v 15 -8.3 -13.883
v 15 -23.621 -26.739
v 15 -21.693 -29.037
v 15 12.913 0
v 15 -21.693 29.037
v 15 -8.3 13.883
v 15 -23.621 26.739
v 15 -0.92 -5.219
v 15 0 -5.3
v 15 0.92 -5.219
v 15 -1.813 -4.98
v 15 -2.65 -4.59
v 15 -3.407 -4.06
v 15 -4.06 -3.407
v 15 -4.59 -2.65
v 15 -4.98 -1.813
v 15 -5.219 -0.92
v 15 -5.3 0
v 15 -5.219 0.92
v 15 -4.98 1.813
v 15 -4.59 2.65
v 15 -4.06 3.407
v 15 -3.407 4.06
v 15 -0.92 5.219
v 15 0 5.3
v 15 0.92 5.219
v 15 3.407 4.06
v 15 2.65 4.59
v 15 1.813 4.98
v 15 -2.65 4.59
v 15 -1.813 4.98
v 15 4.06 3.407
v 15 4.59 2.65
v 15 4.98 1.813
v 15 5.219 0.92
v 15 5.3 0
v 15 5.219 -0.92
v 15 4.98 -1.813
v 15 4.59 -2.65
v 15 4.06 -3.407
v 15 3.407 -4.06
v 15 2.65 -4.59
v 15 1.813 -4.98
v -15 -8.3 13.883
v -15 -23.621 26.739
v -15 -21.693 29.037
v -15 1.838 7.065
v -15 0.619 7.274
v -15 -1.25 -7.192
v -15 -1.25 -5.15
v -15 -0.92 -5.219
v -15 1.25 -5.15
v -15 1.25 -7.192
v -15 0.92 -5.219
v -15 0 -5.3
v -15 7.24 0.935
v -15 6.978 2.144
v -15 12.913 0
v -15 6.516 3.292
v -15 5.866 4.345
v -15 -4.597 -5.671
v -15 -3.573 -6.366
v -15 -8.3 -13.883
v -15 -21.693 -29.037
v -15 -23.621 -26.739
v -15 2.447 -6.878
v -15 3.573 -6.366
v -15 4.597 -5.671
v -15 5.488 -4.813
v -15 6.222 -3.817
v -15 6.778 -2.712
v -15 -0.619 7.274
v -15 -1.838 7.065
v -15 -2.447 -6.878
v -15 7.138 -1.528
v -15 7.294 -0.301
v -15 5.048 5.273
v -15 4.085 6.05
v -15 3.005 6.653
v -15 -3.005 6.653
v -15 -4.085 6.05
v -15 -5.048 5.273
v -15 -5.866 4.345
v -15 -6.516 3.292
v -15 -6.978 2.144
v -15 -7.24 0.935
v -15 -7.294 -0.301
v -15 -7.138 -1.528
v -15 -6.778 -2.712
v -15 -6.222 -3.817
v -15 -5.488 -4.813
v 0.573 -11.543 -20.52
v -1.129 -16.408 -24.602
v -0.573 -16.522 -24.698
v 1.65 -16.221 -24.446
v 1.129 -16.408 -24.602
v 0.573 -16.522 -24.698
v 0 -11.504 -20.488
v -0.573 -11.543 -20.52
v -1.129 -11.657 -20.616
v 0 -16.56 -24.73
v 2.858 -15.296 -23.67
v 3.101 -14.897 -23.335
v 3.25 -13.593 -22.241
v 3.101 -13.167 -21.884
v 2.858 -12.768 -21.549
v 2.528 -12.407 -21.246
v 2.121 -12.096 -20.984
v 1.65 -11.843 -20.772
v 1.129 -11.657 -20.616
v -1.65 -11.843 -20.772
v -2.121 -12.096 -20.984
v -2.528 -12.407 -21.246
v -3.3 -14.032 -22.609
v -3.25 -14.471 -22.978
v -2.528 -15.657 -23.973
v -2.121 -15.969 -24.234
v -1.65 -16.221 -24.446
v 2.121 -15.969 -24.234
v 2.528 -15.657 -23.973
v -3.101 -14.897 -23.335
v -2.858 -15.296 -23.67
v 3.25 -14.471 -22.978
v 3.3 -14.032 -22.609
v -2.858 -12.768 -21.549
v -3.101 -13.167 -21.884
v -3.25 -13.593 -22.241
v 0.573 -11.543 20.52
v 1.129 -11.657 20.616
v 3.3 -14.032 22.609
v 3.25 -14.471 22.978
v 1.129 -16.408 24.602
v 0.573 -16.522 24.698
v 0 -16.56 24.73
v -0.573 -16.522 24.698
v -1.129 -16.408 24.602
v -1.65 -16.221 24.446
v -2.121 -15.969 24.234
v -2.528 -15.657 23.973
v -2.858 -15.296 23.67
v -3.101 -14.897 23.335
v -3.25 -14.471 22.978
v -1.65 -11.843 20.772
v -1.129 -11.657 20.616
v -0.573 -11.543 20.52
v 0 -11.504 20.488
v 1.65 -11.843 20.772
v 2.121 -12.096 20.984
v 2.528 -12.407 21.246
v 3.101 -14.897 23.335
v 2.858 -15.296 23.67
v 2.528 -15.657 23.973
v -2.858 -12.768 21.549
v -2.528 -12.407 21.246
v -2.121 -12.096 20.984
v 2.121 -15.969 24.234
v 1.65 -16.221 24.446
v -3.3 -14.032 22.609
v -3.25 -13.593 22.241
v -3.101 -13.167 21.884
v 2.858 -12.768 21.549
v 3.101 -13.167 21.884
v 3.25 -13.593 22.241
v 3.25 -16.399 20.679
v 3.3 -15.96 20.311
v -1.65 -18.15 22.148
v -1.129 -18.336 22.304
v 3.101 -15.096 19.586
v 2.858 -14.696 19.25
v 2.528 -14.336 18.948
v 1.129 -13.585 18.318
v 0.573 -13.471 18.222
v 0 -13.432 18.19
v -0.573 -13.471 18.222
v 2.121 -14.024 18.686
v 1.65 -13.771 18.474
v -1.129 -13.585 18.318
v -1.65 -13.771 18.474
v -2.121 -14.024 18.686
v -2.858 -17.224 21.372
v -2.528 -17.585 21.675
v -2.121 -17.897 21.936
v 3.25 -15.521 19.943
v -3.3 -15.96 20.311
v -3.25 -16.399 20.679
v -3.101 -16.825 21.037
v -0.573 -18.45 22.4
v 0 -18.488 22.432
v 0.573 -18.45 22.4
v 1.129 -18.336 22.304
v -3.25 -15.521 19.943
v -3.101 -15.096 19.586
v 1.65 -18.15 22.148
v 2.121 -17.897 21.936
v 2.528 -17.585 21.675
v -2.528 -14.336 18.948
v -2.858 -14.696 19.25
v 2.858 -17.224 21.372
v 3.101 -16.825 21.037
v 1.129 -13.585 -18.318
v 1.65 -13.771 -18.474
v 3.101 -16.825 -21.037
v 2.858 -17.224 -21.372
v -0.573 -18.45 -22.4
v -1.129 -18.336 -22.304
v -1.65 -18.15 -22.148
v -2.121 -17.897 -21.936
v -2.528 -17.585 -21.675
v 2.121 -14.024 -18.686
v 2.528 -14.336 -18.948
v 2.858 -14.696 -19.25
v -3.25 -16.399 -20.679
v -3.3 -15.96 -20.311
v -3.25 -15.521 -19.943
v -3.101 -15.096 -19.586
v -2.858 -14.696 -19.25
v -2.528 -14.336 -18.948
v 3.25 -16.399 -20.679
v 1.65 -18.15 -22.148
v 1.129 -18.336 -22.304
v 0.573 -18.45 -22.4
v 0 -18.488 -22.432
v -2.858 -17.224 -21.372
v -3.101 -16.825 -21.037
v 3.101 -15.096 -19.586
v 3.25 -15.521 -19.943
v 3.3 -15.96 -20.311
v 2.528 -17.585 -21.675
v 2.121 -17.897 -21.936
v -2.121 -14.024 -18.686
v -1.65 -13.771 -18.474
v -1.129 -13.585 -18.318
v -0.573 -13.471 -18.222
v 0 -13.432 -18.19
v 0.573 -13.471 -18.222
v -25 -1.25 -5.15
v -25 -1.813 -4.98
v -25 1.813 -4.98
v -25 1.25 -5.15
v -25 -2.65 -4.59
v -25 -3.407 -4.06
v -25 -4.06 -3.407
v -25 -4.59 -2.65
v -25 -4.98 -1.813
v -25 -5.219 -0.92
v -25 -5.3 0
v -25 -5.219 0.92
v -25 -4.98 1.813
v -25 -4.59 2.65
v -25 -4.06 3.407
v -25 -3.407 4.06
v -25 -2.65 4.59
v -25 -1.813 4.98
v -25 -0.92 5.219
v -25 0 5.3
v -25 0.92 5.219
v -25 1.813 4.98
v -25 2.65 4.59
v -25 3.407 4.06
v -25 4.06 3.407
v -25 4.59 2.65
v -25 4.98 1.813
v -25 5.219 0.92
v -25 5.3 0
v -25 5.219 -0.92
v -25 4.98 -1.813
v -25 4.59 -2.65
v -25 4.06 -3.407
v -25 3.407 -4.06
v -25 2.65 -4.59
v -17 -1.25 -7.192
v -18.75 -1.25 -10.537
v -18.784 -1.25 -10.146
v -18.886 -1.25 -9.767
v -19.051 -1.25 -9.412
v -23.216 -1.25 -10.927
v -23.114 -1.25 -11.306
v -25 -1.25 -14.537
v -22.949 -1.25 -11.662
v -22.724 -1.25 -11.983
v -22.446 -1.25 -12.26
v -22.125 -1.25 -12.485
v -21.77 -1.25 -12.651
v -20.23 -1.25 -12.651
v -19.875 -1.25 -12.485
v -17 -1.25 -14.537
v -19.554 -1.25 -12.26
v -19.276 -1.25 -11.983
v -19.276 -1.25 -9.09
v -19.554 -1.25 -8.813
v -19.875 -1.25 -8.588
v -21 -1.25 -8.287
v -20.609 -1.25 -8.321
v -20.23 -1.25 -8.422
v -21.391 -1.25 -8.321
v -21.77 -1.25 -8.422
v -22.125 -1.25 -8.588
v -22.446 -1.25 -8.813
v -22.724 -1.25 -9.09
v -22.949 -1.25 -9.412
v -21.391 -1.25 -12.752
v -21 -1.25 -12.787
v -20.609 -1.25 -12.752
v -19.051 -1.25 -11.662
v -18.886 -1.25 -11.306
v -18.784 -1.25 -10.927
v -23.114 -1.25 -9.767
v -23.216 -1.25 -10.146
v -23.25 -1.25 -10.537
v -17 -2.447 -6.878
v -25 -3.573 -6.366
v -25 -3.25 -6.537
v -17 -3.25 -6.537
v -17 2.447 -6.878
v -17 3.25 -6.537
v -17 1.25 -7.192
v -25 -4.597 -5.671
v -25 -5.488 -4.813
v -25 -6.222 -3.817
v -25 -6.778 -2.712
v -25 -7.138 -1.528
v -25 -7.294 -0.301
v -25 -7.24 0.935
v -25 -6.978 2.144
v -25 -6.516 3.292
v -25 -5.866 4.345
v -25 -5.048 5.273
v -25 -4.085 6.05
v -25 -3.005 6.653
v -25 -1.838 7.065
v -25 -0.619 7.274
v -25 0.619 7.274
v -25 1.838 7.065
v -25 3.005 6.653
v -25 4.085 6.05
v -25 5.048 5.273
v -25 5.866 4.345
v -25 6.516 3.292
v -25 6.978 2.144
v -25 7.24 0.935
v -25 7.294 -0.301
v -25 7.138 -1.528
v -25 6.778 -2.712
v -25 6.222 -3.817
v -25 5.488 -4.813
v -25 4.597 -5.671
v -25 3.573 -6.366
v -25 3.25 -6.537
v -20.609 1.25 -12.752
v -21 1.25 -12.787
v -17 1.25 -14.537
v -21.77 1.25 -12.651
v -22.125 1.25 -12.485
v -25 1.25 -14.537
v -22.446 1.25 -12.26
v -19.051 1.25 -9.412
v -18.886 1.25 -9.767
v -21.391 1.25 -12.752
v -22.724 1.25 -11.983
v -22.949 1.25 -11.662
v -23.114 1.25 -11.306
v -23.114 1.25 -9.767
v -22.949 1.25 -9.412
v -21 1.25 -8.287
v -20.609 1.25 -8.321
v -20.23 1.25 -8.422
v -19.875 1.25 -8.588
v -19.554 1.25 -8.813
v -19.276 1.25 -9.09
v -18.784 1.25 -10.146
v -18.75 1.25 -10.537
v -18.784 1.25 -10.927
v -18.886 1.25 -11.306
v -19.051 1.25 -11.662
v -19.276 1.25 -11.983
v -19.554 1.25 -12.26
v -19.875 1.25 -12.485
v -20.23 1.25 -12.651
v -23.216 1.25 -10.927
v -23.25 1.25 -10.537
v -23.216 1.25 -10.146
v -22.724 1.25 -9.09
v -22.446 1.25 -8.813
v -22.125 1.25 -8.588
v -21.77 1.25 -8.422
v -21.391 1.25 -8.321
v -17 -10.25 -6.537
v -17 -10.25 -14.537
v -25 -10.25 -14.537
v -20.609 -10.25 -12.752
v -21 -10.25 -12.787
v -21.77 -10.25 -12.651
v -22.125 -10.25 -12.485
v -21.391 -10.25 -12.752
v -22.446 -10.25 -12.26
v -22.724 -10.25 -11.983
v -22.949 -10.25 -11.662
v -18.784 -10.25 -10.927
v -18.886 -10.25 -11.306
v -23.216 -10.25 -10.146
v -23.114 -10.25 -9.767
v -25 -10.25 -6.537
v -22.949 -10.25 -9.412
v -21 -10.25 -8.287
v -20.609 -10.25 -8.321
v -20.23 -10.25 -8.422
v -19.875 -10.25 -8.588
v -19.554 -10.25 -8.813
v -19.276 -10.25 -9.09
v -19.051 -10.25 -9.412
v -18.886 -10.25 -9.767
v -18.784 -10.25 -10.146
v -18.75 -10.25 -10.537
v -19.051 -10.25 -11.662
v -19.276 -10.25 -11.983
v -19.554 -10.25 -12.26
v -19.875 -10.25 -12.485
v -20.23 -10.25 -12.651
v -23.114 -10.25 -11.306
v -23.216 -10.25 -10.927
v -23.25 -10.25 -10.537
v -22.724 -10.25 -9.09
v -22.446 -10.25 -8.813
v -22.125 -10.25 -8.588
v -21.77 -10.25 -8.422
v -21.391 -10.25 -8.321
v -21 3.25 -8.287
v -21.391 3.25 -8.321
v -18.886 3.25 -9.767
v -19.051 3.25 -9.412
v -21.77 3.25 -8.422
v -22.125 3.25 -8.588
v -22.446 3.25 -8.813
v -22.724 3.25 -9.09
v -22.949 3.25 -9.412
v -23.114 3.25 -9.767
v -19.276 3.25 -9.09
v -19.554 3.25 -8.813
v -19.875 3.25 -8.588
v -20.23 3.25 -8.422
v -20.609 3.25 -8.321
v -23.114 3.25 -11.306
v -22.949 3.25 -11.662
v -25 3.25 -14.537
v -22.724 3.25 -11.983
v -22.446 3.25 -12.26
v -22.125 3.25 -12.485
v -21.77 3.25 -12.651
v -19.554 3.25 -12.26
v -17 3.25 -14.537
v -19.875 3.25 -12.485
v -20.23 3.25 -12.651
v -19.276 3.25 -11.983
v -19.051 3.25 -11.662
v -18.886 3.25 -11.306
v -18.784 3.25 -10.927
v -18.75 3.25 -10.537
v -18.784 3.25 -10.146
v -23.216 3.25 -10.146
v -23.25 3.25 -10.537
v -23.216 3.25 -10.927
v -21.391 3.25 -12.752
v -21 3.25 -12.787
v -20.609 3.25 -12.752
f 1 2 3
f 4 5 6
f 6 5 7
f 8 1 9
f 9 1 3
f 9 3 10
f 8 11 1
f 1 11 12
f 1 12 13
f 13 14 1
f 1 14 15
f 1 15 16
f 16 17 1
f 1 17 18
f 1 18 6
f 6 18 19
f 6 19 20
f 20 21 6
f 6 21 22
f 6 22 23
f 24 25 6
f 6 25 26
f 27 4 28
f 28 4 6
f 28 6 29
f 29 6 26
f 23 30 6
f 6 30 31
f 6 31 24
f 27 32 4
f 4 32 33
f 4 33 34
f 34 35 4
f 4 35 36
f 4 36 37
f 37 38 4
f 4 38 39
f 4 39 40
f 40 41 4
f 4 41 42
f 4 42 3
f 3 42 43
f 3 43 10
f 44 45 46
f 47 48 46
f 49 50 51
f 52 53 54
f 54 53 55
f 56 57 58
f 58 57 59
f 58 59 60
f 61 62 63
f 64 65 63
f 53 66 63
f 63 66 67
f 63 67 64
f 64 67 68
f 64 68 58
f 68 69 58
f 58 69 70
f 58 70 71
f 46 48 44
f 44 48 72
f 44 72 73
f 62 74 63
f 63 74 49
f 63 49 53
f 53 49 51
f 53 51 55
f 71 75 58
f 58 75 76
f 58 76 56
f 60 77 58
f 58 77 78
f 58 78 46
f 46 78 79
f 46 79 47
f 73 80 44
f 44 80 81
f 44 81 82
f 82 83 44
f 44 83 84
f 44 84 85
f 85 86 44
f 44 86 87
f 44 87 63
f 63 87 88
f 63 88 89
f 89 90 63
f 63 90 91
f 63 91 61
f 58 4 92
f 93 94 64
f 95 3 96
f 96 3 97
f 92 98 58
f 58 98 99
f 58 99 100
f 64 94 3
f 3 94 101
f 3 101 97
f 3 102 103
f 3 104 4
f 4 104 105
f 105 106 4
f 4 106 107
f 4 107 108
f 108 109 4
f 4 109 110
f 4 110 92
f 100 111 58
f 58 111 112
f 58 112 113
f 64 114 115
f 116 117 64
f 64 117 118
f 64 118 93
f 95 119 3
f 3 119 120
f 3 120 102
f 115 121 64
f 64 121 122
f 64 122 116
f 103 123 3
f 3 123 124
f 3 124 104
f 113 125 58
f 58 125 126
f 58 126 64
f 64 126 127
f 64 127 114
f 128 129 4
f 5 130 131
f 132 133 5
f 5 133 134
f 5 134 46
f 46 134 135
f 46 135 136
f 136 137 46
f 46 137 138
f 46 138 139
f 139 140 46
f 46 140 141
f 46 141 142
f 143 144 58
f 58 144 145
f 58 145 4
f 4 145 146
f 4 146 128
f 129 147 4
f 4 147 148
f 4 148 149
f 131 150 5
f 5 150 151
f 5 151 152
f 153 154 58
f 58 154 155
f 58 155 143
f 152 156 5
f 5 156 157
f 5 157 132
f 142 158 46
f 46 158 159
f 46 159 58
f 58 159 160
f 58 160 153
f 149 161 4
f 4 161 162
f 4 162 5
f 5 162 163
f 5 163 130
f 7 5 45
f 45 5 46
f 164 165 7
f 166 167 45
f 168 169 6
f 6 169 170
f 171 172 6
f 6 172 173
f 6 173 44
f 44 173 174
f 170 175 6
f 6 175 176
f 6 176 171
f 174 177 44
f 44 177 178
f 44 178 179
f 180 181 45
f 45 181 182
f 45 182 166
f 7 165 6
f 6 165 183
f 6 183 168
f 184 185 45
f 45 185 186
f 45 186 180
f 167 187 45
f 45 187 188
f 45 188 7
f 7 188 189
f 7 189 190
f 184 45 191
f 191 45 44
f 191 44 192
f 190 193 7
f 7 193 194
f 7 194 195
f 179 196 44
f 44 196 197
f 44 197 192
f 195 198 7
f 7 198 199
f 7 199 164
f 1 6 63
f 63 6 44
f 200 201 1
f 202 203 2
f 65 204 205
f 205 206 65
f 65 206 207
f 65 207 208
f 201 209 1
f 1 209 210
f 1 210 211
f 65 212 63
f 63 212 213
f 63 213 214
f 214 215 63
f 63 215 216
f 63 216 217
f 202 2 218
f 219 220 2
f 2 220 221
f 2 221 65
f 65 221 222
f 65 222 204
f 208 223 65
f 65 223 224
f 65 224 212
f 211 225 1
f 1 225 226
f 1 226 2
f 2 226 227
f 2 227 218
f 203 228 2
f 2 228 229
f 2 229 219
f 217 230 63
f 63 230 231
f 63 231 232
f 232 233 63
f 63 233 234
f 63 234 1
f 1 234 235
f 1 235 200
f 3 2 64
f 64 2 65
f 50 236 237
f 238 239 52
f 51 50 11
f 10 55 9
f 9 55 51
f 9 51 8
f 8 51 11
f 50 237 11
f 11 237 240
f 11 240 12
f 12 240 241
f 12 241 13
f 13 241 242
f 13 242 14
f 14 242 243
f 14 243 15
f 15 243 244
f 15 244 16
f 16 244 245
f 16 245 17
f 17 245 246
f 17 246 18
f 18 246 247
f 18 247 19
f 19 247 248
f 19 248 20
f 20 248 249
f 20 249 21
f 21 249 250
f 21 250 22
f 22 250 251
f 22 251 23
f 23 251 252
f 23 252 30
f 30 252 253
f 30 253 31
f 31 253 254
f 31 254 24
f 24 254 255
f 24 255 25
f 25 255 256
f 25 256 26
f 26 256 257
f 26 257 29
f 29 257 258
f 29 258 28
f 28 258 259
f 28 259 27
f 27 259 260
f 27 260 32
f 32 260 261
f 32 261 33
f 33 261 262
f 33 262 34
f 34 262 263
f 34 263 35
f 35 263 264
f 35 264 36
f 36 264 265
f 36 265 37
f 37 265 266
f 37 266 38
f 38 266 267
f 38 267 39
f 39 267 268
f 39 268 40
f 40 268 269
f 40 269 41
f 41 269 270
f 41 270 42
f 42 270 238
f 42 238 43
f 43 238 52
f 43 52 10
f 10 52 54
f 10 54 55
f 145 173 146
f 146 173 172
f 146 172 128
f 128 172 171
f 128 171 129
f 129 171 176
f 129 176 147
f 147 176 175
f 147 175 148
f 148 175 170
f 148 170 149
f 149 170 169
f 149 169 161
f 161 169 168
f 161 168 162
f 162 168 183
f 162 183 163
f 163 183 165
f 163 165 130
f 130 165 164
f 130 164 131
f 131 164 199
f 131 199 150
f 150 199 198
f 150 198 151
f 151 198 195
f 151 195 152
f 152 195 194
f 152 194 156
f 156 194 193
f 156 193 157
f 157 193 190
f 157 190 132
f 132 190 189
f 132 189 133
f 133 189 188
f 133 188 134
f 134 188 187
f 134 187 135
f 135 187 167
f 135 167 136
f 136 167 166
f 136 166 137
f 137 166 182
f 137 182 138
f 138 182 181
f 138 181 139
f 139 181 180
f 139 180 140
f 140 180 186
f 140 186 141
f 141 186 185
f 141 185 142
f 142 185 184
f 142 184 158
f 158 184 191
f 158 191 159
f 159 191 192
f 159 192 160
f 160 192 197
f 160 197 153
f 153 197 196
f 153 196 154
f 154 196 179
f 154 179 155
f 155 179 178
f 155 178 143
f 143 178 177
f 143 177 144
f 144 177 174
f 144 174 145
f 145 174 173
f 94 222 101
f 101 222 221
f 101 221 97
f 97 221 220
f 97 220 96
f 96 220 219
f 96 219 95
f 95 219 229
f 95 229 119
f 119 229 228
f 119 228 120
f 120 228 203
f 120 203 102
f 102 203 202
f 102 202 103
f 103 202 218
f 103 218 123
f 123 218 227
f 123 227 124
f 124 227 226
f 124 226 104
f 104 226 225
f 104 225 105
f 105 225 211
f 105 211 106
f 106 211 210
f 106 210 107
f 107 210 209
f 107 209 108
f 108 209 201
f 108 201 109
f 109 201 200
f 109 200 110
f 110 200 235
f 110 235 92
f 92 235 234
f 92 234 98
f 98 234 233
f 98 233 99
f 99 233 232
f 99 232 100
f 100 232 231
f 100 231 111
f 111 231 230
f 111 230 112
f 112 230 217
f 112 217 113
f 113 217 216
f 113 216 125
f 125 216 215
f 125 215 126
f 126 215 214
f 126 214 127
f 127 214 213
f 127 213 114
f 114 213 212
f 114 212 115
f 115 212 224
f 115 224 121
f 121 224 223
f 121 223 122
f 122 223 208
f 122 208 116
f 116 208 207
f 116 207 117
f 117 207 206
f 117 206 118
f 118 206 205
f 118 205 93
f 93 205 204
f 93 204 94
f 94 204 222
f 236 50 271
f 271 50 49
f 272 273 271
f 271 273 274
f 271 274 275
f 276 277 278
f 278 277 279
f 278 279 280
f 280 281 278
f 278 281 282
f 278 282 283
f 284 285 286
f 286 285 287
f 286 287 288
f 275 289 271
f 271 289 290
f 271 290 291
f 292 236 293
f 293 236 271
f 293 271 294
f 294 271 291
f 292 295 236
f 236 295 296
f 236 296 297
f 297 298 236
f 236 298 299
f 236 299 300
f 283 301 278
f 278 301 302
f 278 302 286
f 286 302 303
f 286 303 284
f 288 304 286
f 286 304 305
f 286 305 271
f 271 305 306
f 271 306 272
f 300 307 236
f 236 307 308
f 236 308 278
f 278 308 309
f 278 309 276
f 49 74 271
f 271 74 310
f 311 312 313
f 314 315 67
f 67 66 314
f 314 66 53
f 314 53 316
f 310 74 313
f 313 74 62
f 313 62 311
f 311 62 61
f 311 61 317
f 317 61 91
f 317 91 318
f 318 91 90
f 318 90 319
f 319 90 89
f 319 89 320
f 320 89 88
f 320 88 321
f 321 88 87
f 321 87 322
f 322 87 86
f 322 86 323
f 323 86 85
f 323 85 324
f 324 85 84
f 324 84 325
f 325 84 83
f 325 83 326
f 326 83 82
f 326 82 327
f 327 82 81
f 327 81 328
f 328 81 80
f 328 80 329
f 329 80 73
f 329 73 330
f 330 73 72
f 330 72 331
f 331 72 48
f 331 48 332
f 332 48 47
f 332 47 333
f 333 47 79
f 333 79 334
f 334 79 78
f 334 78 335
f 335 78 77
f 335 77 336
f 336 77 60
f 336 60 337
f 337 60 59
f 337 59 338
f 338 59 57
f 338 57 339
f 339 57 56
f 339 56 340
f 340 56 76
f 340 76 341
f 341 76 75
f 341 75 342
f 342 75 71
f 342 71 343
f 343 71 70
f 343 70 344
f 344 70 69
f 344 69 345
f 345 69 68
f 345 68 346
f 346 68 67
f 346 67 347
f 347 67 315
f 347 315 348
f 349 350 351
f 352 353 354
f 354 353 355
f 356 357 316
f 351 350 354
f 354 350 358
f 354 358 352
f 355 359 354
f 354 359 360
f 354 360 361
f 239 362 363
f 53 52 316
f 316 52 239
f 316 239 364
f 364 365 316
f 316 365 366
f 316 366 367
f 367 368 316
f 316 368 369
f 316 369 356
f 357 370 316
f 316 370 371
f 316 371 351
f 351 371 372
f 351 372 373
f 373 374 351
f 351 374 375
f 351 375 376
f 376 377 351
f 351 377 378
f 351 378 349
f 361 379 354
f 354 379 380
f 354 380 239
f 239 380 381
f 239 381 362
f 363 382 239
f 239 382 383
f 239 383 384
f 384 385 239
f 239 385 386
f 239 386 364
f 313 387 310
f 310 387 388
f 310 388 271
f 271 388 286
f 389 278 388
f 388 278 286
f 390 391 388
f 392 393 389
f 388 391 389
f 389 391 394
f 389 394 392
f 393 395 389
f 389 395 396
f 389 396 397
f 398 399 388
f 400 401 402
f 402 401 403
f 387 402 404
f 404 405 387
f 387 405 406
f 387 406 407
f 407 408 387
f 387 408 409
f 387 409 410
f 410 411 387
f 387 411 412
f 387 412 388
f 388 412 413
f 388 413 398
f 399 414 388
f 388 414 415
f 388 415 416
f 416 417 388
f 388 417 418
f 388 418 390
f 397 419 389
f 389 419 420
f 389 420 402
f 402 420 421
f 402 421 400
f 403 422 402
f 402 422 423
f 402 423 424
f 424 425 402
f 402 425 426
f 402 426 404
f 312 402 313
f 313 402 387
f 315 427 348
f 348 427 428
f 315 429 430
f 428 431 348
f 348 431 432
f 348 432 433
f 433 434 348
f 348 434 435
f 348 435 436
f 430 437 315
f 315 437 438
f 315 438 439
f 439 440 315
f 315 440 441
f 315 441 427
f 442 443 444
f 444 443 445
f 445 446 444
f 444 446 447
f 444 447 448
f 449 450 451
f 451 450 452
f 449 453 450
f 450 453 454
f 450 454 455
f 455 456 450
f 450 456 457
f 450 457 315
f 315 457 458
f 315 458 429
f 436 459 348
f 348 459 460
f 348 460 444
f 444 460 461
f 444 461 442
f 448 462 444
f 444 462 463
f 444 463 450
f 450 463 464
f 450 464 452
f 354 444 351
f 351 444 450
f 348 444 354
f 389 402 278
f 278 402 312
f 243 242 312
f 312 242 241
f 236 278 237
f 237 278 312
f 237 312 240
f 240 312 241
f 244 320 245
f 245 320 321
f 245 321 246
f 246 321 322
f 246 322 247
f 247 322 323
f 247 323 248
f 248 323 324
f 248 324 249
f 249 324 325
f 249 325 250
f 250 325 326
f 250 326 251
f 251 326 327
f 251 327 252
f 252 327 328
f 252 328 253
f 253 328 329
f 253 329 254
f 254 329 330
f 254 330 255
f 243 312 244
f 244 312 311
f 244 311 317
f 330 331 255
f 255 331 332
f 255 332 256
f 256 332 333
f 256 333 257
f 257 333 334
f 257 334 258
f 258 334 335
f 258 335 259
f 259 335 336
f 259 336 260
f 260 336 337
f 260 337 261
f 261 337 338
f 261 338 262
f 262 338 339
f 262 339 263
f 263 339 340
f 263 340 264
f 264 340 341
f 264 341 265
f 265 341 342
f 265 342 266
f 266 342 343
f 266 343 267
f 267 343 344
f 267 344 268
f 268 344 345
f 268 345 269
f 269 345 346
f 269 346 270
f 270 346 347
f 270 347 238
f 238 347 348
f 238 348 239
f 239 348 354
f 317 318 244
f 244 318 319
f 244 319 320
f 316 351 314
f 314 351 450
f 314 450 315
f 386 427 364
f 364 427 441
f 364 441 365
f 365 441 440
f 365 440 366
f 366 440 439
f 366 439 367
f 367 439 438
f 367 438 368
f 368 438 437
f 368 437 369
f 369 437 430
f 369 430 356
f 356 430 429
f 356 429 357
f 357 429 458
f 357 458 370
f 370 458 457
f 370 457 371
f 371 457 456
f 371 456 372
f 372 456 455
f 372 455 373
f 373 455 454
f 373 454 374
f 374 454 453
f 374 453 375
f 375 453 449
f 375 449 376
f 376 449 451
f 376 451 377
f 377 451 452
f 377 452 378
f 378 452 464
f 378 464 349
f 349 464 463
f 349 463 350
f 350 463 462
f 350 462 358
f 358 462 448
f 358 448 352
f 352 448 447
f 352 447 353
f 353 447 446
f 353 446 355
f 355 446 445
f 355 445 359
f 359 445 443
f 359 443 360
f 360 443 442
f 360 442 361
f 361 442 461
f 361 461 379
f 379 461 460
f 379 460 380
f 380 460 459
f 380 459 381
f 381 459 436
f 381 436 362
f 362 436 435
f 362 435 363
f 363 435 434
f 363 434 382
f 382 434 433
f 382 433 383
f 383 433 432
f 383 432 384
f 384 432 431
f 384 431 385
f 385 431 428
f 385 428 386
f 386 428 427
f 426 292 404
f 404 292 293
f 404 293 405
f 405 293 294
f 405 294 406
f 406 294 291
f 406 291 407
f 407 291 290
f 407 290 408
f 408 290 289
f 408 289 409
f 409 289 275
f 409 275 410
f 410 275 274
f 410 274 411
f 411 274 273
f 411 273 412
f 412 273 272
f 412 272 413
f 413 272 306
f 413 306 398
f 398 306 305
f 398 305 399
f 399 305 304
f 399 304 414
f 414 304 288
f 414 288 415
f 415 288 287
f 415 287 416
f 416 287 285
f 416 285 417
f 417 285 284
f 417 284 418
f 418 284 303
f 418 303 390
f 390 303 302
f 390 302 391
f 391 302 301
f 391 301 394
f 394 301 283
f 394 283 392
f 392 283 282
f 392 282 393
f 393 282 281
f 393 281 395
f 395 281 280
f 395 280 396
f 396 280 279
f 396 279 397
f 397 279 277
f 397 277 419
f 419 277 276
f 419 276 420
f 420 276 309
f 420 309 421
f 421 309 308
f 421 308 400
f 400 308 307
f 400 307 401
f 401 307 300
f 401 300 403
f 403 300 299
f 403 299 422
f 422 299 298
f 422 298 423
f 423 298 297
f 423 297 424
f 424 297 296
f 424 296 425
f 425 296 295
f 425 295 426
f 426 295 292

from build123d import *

# Parameters (mm, degrees)
SKETCH1_R            = 5.3
BOSS_EXTRUDE1_DEPTH  = 15
M6_CLEARANCE_HOLE1_D = 6.6
BOSS_EXTRUDE3_DEPTH  = 2
BOSS_EXTRUDE2_DEPTH  = 8
SKETCH6_R            = 2.25
CUT_EXTRUDE1_DEPTH   = 27.870888862


with BuildPart() as part:
    # Sketch1 → Boss-Extrude1 (new body, symmetric)
    with BuildSketch(Plane(origin=(0, 0, 0), x_dir=(0, 0, -1), z_dir=(1, 0, 0))):
        Polygon((0, 12.912507763), (-29.037071095, -21.692526033), (-26.738937766, -23.620888862), (-13.883185572, -8.3), (13.883185572, -8.3), (26.738937766, -23.620888862), (29.037071095, -21.692526033), align=None)
        Circle(SKETCH1_R, mode=Mode.SUBTRACT)
    extrude(amount=BOSS_EXTRUDE1_DEPTH, both=True)

    # M6 Clearance Hole1 (through all)
    with Locations(Plane(origin=(0, 3.406774331, 4.060035549), x_dir=(-1, 0, 0), z_dir=(0, -0.64278761, -0.766044443))):
        with Locations((0, -25.282108547)):
            m6_clearance_hole1 = Hole(M6_CLEARANCE_HOLE1_D / 2)

    # Mirror1: M6 Clearance Hole1 across plane
    add(m6_clearance_hole1.mirror(Plane.XY), mode=Mode.SUBTRACT)

    # Sketch7 → Boss-Extrude3 (add)
    with BuildSketch(Plane.ZY.offset(15)):
        with BuildLine():
            Line((-5.150485414, 1.25), (-7.192183257, 1.25))
            ThreePointArc((-7.192183257, 1.25), (7.3, 0), (-7.192183257, -1.25))
            Line((-7.192183257, -1.25), (-5.150485414, -1.25))
            ThreePointArc((-5.150485414, -1.25), (5.3, 0), (-5.150485414, 1.25))
        make_face()
    extrude(amount=BOSS_EXTRUDE3_DEPTH)

    # Sketch5 → Boss-Extrude2 (add)
    with BuildSketch(Plane.ZY.offset(17)):
        with BuildLine():
            Line((-5.150485414, 1.25), (-14.536627571, 1.25))
            Line((-14.536627571, 1.25), (-14.536627571, 3.25))
            Line((-14.536627571, 3.25), (-6.536627571, 3.25))
            ThreePointArc((-6.536627571, 3.25), (7.3, 0), (-6.536627571, -3.25))
            Line((-6.536627571, -3.25), (-6.536627571, -10.25))
            Line((-6.536627571, -10.25), (-14.536627571, -10.25))
            Line((-14.536627571, -10.25), (-14.536627571, -1.25))
            Line((-14.536627571, -1.25), (-5.150485414, -1.25))
            ThreePointArc((-5.150485414, -1.25), (5.3, 0), (-5.150485414, 1.25))
        make_face()
    extrude(amount=BOSS_EXTRUDE2_DEPTH)

    # Sketch6 → Cut-Extrude1 (cut, through all)
    with BuildSketch(Plane(origin=(0, 3.25, 0), x_dir=(1, 0, 0), z_dir=(0, 1, 0))):
        with Locations((-21, 10.536627571)):
            Circle(SKETCH6_R)
    extrude(amount=-CUT_EXTRUDE1_DEPTH, mode=Mode.SUBTRACT)


solid = part.part
